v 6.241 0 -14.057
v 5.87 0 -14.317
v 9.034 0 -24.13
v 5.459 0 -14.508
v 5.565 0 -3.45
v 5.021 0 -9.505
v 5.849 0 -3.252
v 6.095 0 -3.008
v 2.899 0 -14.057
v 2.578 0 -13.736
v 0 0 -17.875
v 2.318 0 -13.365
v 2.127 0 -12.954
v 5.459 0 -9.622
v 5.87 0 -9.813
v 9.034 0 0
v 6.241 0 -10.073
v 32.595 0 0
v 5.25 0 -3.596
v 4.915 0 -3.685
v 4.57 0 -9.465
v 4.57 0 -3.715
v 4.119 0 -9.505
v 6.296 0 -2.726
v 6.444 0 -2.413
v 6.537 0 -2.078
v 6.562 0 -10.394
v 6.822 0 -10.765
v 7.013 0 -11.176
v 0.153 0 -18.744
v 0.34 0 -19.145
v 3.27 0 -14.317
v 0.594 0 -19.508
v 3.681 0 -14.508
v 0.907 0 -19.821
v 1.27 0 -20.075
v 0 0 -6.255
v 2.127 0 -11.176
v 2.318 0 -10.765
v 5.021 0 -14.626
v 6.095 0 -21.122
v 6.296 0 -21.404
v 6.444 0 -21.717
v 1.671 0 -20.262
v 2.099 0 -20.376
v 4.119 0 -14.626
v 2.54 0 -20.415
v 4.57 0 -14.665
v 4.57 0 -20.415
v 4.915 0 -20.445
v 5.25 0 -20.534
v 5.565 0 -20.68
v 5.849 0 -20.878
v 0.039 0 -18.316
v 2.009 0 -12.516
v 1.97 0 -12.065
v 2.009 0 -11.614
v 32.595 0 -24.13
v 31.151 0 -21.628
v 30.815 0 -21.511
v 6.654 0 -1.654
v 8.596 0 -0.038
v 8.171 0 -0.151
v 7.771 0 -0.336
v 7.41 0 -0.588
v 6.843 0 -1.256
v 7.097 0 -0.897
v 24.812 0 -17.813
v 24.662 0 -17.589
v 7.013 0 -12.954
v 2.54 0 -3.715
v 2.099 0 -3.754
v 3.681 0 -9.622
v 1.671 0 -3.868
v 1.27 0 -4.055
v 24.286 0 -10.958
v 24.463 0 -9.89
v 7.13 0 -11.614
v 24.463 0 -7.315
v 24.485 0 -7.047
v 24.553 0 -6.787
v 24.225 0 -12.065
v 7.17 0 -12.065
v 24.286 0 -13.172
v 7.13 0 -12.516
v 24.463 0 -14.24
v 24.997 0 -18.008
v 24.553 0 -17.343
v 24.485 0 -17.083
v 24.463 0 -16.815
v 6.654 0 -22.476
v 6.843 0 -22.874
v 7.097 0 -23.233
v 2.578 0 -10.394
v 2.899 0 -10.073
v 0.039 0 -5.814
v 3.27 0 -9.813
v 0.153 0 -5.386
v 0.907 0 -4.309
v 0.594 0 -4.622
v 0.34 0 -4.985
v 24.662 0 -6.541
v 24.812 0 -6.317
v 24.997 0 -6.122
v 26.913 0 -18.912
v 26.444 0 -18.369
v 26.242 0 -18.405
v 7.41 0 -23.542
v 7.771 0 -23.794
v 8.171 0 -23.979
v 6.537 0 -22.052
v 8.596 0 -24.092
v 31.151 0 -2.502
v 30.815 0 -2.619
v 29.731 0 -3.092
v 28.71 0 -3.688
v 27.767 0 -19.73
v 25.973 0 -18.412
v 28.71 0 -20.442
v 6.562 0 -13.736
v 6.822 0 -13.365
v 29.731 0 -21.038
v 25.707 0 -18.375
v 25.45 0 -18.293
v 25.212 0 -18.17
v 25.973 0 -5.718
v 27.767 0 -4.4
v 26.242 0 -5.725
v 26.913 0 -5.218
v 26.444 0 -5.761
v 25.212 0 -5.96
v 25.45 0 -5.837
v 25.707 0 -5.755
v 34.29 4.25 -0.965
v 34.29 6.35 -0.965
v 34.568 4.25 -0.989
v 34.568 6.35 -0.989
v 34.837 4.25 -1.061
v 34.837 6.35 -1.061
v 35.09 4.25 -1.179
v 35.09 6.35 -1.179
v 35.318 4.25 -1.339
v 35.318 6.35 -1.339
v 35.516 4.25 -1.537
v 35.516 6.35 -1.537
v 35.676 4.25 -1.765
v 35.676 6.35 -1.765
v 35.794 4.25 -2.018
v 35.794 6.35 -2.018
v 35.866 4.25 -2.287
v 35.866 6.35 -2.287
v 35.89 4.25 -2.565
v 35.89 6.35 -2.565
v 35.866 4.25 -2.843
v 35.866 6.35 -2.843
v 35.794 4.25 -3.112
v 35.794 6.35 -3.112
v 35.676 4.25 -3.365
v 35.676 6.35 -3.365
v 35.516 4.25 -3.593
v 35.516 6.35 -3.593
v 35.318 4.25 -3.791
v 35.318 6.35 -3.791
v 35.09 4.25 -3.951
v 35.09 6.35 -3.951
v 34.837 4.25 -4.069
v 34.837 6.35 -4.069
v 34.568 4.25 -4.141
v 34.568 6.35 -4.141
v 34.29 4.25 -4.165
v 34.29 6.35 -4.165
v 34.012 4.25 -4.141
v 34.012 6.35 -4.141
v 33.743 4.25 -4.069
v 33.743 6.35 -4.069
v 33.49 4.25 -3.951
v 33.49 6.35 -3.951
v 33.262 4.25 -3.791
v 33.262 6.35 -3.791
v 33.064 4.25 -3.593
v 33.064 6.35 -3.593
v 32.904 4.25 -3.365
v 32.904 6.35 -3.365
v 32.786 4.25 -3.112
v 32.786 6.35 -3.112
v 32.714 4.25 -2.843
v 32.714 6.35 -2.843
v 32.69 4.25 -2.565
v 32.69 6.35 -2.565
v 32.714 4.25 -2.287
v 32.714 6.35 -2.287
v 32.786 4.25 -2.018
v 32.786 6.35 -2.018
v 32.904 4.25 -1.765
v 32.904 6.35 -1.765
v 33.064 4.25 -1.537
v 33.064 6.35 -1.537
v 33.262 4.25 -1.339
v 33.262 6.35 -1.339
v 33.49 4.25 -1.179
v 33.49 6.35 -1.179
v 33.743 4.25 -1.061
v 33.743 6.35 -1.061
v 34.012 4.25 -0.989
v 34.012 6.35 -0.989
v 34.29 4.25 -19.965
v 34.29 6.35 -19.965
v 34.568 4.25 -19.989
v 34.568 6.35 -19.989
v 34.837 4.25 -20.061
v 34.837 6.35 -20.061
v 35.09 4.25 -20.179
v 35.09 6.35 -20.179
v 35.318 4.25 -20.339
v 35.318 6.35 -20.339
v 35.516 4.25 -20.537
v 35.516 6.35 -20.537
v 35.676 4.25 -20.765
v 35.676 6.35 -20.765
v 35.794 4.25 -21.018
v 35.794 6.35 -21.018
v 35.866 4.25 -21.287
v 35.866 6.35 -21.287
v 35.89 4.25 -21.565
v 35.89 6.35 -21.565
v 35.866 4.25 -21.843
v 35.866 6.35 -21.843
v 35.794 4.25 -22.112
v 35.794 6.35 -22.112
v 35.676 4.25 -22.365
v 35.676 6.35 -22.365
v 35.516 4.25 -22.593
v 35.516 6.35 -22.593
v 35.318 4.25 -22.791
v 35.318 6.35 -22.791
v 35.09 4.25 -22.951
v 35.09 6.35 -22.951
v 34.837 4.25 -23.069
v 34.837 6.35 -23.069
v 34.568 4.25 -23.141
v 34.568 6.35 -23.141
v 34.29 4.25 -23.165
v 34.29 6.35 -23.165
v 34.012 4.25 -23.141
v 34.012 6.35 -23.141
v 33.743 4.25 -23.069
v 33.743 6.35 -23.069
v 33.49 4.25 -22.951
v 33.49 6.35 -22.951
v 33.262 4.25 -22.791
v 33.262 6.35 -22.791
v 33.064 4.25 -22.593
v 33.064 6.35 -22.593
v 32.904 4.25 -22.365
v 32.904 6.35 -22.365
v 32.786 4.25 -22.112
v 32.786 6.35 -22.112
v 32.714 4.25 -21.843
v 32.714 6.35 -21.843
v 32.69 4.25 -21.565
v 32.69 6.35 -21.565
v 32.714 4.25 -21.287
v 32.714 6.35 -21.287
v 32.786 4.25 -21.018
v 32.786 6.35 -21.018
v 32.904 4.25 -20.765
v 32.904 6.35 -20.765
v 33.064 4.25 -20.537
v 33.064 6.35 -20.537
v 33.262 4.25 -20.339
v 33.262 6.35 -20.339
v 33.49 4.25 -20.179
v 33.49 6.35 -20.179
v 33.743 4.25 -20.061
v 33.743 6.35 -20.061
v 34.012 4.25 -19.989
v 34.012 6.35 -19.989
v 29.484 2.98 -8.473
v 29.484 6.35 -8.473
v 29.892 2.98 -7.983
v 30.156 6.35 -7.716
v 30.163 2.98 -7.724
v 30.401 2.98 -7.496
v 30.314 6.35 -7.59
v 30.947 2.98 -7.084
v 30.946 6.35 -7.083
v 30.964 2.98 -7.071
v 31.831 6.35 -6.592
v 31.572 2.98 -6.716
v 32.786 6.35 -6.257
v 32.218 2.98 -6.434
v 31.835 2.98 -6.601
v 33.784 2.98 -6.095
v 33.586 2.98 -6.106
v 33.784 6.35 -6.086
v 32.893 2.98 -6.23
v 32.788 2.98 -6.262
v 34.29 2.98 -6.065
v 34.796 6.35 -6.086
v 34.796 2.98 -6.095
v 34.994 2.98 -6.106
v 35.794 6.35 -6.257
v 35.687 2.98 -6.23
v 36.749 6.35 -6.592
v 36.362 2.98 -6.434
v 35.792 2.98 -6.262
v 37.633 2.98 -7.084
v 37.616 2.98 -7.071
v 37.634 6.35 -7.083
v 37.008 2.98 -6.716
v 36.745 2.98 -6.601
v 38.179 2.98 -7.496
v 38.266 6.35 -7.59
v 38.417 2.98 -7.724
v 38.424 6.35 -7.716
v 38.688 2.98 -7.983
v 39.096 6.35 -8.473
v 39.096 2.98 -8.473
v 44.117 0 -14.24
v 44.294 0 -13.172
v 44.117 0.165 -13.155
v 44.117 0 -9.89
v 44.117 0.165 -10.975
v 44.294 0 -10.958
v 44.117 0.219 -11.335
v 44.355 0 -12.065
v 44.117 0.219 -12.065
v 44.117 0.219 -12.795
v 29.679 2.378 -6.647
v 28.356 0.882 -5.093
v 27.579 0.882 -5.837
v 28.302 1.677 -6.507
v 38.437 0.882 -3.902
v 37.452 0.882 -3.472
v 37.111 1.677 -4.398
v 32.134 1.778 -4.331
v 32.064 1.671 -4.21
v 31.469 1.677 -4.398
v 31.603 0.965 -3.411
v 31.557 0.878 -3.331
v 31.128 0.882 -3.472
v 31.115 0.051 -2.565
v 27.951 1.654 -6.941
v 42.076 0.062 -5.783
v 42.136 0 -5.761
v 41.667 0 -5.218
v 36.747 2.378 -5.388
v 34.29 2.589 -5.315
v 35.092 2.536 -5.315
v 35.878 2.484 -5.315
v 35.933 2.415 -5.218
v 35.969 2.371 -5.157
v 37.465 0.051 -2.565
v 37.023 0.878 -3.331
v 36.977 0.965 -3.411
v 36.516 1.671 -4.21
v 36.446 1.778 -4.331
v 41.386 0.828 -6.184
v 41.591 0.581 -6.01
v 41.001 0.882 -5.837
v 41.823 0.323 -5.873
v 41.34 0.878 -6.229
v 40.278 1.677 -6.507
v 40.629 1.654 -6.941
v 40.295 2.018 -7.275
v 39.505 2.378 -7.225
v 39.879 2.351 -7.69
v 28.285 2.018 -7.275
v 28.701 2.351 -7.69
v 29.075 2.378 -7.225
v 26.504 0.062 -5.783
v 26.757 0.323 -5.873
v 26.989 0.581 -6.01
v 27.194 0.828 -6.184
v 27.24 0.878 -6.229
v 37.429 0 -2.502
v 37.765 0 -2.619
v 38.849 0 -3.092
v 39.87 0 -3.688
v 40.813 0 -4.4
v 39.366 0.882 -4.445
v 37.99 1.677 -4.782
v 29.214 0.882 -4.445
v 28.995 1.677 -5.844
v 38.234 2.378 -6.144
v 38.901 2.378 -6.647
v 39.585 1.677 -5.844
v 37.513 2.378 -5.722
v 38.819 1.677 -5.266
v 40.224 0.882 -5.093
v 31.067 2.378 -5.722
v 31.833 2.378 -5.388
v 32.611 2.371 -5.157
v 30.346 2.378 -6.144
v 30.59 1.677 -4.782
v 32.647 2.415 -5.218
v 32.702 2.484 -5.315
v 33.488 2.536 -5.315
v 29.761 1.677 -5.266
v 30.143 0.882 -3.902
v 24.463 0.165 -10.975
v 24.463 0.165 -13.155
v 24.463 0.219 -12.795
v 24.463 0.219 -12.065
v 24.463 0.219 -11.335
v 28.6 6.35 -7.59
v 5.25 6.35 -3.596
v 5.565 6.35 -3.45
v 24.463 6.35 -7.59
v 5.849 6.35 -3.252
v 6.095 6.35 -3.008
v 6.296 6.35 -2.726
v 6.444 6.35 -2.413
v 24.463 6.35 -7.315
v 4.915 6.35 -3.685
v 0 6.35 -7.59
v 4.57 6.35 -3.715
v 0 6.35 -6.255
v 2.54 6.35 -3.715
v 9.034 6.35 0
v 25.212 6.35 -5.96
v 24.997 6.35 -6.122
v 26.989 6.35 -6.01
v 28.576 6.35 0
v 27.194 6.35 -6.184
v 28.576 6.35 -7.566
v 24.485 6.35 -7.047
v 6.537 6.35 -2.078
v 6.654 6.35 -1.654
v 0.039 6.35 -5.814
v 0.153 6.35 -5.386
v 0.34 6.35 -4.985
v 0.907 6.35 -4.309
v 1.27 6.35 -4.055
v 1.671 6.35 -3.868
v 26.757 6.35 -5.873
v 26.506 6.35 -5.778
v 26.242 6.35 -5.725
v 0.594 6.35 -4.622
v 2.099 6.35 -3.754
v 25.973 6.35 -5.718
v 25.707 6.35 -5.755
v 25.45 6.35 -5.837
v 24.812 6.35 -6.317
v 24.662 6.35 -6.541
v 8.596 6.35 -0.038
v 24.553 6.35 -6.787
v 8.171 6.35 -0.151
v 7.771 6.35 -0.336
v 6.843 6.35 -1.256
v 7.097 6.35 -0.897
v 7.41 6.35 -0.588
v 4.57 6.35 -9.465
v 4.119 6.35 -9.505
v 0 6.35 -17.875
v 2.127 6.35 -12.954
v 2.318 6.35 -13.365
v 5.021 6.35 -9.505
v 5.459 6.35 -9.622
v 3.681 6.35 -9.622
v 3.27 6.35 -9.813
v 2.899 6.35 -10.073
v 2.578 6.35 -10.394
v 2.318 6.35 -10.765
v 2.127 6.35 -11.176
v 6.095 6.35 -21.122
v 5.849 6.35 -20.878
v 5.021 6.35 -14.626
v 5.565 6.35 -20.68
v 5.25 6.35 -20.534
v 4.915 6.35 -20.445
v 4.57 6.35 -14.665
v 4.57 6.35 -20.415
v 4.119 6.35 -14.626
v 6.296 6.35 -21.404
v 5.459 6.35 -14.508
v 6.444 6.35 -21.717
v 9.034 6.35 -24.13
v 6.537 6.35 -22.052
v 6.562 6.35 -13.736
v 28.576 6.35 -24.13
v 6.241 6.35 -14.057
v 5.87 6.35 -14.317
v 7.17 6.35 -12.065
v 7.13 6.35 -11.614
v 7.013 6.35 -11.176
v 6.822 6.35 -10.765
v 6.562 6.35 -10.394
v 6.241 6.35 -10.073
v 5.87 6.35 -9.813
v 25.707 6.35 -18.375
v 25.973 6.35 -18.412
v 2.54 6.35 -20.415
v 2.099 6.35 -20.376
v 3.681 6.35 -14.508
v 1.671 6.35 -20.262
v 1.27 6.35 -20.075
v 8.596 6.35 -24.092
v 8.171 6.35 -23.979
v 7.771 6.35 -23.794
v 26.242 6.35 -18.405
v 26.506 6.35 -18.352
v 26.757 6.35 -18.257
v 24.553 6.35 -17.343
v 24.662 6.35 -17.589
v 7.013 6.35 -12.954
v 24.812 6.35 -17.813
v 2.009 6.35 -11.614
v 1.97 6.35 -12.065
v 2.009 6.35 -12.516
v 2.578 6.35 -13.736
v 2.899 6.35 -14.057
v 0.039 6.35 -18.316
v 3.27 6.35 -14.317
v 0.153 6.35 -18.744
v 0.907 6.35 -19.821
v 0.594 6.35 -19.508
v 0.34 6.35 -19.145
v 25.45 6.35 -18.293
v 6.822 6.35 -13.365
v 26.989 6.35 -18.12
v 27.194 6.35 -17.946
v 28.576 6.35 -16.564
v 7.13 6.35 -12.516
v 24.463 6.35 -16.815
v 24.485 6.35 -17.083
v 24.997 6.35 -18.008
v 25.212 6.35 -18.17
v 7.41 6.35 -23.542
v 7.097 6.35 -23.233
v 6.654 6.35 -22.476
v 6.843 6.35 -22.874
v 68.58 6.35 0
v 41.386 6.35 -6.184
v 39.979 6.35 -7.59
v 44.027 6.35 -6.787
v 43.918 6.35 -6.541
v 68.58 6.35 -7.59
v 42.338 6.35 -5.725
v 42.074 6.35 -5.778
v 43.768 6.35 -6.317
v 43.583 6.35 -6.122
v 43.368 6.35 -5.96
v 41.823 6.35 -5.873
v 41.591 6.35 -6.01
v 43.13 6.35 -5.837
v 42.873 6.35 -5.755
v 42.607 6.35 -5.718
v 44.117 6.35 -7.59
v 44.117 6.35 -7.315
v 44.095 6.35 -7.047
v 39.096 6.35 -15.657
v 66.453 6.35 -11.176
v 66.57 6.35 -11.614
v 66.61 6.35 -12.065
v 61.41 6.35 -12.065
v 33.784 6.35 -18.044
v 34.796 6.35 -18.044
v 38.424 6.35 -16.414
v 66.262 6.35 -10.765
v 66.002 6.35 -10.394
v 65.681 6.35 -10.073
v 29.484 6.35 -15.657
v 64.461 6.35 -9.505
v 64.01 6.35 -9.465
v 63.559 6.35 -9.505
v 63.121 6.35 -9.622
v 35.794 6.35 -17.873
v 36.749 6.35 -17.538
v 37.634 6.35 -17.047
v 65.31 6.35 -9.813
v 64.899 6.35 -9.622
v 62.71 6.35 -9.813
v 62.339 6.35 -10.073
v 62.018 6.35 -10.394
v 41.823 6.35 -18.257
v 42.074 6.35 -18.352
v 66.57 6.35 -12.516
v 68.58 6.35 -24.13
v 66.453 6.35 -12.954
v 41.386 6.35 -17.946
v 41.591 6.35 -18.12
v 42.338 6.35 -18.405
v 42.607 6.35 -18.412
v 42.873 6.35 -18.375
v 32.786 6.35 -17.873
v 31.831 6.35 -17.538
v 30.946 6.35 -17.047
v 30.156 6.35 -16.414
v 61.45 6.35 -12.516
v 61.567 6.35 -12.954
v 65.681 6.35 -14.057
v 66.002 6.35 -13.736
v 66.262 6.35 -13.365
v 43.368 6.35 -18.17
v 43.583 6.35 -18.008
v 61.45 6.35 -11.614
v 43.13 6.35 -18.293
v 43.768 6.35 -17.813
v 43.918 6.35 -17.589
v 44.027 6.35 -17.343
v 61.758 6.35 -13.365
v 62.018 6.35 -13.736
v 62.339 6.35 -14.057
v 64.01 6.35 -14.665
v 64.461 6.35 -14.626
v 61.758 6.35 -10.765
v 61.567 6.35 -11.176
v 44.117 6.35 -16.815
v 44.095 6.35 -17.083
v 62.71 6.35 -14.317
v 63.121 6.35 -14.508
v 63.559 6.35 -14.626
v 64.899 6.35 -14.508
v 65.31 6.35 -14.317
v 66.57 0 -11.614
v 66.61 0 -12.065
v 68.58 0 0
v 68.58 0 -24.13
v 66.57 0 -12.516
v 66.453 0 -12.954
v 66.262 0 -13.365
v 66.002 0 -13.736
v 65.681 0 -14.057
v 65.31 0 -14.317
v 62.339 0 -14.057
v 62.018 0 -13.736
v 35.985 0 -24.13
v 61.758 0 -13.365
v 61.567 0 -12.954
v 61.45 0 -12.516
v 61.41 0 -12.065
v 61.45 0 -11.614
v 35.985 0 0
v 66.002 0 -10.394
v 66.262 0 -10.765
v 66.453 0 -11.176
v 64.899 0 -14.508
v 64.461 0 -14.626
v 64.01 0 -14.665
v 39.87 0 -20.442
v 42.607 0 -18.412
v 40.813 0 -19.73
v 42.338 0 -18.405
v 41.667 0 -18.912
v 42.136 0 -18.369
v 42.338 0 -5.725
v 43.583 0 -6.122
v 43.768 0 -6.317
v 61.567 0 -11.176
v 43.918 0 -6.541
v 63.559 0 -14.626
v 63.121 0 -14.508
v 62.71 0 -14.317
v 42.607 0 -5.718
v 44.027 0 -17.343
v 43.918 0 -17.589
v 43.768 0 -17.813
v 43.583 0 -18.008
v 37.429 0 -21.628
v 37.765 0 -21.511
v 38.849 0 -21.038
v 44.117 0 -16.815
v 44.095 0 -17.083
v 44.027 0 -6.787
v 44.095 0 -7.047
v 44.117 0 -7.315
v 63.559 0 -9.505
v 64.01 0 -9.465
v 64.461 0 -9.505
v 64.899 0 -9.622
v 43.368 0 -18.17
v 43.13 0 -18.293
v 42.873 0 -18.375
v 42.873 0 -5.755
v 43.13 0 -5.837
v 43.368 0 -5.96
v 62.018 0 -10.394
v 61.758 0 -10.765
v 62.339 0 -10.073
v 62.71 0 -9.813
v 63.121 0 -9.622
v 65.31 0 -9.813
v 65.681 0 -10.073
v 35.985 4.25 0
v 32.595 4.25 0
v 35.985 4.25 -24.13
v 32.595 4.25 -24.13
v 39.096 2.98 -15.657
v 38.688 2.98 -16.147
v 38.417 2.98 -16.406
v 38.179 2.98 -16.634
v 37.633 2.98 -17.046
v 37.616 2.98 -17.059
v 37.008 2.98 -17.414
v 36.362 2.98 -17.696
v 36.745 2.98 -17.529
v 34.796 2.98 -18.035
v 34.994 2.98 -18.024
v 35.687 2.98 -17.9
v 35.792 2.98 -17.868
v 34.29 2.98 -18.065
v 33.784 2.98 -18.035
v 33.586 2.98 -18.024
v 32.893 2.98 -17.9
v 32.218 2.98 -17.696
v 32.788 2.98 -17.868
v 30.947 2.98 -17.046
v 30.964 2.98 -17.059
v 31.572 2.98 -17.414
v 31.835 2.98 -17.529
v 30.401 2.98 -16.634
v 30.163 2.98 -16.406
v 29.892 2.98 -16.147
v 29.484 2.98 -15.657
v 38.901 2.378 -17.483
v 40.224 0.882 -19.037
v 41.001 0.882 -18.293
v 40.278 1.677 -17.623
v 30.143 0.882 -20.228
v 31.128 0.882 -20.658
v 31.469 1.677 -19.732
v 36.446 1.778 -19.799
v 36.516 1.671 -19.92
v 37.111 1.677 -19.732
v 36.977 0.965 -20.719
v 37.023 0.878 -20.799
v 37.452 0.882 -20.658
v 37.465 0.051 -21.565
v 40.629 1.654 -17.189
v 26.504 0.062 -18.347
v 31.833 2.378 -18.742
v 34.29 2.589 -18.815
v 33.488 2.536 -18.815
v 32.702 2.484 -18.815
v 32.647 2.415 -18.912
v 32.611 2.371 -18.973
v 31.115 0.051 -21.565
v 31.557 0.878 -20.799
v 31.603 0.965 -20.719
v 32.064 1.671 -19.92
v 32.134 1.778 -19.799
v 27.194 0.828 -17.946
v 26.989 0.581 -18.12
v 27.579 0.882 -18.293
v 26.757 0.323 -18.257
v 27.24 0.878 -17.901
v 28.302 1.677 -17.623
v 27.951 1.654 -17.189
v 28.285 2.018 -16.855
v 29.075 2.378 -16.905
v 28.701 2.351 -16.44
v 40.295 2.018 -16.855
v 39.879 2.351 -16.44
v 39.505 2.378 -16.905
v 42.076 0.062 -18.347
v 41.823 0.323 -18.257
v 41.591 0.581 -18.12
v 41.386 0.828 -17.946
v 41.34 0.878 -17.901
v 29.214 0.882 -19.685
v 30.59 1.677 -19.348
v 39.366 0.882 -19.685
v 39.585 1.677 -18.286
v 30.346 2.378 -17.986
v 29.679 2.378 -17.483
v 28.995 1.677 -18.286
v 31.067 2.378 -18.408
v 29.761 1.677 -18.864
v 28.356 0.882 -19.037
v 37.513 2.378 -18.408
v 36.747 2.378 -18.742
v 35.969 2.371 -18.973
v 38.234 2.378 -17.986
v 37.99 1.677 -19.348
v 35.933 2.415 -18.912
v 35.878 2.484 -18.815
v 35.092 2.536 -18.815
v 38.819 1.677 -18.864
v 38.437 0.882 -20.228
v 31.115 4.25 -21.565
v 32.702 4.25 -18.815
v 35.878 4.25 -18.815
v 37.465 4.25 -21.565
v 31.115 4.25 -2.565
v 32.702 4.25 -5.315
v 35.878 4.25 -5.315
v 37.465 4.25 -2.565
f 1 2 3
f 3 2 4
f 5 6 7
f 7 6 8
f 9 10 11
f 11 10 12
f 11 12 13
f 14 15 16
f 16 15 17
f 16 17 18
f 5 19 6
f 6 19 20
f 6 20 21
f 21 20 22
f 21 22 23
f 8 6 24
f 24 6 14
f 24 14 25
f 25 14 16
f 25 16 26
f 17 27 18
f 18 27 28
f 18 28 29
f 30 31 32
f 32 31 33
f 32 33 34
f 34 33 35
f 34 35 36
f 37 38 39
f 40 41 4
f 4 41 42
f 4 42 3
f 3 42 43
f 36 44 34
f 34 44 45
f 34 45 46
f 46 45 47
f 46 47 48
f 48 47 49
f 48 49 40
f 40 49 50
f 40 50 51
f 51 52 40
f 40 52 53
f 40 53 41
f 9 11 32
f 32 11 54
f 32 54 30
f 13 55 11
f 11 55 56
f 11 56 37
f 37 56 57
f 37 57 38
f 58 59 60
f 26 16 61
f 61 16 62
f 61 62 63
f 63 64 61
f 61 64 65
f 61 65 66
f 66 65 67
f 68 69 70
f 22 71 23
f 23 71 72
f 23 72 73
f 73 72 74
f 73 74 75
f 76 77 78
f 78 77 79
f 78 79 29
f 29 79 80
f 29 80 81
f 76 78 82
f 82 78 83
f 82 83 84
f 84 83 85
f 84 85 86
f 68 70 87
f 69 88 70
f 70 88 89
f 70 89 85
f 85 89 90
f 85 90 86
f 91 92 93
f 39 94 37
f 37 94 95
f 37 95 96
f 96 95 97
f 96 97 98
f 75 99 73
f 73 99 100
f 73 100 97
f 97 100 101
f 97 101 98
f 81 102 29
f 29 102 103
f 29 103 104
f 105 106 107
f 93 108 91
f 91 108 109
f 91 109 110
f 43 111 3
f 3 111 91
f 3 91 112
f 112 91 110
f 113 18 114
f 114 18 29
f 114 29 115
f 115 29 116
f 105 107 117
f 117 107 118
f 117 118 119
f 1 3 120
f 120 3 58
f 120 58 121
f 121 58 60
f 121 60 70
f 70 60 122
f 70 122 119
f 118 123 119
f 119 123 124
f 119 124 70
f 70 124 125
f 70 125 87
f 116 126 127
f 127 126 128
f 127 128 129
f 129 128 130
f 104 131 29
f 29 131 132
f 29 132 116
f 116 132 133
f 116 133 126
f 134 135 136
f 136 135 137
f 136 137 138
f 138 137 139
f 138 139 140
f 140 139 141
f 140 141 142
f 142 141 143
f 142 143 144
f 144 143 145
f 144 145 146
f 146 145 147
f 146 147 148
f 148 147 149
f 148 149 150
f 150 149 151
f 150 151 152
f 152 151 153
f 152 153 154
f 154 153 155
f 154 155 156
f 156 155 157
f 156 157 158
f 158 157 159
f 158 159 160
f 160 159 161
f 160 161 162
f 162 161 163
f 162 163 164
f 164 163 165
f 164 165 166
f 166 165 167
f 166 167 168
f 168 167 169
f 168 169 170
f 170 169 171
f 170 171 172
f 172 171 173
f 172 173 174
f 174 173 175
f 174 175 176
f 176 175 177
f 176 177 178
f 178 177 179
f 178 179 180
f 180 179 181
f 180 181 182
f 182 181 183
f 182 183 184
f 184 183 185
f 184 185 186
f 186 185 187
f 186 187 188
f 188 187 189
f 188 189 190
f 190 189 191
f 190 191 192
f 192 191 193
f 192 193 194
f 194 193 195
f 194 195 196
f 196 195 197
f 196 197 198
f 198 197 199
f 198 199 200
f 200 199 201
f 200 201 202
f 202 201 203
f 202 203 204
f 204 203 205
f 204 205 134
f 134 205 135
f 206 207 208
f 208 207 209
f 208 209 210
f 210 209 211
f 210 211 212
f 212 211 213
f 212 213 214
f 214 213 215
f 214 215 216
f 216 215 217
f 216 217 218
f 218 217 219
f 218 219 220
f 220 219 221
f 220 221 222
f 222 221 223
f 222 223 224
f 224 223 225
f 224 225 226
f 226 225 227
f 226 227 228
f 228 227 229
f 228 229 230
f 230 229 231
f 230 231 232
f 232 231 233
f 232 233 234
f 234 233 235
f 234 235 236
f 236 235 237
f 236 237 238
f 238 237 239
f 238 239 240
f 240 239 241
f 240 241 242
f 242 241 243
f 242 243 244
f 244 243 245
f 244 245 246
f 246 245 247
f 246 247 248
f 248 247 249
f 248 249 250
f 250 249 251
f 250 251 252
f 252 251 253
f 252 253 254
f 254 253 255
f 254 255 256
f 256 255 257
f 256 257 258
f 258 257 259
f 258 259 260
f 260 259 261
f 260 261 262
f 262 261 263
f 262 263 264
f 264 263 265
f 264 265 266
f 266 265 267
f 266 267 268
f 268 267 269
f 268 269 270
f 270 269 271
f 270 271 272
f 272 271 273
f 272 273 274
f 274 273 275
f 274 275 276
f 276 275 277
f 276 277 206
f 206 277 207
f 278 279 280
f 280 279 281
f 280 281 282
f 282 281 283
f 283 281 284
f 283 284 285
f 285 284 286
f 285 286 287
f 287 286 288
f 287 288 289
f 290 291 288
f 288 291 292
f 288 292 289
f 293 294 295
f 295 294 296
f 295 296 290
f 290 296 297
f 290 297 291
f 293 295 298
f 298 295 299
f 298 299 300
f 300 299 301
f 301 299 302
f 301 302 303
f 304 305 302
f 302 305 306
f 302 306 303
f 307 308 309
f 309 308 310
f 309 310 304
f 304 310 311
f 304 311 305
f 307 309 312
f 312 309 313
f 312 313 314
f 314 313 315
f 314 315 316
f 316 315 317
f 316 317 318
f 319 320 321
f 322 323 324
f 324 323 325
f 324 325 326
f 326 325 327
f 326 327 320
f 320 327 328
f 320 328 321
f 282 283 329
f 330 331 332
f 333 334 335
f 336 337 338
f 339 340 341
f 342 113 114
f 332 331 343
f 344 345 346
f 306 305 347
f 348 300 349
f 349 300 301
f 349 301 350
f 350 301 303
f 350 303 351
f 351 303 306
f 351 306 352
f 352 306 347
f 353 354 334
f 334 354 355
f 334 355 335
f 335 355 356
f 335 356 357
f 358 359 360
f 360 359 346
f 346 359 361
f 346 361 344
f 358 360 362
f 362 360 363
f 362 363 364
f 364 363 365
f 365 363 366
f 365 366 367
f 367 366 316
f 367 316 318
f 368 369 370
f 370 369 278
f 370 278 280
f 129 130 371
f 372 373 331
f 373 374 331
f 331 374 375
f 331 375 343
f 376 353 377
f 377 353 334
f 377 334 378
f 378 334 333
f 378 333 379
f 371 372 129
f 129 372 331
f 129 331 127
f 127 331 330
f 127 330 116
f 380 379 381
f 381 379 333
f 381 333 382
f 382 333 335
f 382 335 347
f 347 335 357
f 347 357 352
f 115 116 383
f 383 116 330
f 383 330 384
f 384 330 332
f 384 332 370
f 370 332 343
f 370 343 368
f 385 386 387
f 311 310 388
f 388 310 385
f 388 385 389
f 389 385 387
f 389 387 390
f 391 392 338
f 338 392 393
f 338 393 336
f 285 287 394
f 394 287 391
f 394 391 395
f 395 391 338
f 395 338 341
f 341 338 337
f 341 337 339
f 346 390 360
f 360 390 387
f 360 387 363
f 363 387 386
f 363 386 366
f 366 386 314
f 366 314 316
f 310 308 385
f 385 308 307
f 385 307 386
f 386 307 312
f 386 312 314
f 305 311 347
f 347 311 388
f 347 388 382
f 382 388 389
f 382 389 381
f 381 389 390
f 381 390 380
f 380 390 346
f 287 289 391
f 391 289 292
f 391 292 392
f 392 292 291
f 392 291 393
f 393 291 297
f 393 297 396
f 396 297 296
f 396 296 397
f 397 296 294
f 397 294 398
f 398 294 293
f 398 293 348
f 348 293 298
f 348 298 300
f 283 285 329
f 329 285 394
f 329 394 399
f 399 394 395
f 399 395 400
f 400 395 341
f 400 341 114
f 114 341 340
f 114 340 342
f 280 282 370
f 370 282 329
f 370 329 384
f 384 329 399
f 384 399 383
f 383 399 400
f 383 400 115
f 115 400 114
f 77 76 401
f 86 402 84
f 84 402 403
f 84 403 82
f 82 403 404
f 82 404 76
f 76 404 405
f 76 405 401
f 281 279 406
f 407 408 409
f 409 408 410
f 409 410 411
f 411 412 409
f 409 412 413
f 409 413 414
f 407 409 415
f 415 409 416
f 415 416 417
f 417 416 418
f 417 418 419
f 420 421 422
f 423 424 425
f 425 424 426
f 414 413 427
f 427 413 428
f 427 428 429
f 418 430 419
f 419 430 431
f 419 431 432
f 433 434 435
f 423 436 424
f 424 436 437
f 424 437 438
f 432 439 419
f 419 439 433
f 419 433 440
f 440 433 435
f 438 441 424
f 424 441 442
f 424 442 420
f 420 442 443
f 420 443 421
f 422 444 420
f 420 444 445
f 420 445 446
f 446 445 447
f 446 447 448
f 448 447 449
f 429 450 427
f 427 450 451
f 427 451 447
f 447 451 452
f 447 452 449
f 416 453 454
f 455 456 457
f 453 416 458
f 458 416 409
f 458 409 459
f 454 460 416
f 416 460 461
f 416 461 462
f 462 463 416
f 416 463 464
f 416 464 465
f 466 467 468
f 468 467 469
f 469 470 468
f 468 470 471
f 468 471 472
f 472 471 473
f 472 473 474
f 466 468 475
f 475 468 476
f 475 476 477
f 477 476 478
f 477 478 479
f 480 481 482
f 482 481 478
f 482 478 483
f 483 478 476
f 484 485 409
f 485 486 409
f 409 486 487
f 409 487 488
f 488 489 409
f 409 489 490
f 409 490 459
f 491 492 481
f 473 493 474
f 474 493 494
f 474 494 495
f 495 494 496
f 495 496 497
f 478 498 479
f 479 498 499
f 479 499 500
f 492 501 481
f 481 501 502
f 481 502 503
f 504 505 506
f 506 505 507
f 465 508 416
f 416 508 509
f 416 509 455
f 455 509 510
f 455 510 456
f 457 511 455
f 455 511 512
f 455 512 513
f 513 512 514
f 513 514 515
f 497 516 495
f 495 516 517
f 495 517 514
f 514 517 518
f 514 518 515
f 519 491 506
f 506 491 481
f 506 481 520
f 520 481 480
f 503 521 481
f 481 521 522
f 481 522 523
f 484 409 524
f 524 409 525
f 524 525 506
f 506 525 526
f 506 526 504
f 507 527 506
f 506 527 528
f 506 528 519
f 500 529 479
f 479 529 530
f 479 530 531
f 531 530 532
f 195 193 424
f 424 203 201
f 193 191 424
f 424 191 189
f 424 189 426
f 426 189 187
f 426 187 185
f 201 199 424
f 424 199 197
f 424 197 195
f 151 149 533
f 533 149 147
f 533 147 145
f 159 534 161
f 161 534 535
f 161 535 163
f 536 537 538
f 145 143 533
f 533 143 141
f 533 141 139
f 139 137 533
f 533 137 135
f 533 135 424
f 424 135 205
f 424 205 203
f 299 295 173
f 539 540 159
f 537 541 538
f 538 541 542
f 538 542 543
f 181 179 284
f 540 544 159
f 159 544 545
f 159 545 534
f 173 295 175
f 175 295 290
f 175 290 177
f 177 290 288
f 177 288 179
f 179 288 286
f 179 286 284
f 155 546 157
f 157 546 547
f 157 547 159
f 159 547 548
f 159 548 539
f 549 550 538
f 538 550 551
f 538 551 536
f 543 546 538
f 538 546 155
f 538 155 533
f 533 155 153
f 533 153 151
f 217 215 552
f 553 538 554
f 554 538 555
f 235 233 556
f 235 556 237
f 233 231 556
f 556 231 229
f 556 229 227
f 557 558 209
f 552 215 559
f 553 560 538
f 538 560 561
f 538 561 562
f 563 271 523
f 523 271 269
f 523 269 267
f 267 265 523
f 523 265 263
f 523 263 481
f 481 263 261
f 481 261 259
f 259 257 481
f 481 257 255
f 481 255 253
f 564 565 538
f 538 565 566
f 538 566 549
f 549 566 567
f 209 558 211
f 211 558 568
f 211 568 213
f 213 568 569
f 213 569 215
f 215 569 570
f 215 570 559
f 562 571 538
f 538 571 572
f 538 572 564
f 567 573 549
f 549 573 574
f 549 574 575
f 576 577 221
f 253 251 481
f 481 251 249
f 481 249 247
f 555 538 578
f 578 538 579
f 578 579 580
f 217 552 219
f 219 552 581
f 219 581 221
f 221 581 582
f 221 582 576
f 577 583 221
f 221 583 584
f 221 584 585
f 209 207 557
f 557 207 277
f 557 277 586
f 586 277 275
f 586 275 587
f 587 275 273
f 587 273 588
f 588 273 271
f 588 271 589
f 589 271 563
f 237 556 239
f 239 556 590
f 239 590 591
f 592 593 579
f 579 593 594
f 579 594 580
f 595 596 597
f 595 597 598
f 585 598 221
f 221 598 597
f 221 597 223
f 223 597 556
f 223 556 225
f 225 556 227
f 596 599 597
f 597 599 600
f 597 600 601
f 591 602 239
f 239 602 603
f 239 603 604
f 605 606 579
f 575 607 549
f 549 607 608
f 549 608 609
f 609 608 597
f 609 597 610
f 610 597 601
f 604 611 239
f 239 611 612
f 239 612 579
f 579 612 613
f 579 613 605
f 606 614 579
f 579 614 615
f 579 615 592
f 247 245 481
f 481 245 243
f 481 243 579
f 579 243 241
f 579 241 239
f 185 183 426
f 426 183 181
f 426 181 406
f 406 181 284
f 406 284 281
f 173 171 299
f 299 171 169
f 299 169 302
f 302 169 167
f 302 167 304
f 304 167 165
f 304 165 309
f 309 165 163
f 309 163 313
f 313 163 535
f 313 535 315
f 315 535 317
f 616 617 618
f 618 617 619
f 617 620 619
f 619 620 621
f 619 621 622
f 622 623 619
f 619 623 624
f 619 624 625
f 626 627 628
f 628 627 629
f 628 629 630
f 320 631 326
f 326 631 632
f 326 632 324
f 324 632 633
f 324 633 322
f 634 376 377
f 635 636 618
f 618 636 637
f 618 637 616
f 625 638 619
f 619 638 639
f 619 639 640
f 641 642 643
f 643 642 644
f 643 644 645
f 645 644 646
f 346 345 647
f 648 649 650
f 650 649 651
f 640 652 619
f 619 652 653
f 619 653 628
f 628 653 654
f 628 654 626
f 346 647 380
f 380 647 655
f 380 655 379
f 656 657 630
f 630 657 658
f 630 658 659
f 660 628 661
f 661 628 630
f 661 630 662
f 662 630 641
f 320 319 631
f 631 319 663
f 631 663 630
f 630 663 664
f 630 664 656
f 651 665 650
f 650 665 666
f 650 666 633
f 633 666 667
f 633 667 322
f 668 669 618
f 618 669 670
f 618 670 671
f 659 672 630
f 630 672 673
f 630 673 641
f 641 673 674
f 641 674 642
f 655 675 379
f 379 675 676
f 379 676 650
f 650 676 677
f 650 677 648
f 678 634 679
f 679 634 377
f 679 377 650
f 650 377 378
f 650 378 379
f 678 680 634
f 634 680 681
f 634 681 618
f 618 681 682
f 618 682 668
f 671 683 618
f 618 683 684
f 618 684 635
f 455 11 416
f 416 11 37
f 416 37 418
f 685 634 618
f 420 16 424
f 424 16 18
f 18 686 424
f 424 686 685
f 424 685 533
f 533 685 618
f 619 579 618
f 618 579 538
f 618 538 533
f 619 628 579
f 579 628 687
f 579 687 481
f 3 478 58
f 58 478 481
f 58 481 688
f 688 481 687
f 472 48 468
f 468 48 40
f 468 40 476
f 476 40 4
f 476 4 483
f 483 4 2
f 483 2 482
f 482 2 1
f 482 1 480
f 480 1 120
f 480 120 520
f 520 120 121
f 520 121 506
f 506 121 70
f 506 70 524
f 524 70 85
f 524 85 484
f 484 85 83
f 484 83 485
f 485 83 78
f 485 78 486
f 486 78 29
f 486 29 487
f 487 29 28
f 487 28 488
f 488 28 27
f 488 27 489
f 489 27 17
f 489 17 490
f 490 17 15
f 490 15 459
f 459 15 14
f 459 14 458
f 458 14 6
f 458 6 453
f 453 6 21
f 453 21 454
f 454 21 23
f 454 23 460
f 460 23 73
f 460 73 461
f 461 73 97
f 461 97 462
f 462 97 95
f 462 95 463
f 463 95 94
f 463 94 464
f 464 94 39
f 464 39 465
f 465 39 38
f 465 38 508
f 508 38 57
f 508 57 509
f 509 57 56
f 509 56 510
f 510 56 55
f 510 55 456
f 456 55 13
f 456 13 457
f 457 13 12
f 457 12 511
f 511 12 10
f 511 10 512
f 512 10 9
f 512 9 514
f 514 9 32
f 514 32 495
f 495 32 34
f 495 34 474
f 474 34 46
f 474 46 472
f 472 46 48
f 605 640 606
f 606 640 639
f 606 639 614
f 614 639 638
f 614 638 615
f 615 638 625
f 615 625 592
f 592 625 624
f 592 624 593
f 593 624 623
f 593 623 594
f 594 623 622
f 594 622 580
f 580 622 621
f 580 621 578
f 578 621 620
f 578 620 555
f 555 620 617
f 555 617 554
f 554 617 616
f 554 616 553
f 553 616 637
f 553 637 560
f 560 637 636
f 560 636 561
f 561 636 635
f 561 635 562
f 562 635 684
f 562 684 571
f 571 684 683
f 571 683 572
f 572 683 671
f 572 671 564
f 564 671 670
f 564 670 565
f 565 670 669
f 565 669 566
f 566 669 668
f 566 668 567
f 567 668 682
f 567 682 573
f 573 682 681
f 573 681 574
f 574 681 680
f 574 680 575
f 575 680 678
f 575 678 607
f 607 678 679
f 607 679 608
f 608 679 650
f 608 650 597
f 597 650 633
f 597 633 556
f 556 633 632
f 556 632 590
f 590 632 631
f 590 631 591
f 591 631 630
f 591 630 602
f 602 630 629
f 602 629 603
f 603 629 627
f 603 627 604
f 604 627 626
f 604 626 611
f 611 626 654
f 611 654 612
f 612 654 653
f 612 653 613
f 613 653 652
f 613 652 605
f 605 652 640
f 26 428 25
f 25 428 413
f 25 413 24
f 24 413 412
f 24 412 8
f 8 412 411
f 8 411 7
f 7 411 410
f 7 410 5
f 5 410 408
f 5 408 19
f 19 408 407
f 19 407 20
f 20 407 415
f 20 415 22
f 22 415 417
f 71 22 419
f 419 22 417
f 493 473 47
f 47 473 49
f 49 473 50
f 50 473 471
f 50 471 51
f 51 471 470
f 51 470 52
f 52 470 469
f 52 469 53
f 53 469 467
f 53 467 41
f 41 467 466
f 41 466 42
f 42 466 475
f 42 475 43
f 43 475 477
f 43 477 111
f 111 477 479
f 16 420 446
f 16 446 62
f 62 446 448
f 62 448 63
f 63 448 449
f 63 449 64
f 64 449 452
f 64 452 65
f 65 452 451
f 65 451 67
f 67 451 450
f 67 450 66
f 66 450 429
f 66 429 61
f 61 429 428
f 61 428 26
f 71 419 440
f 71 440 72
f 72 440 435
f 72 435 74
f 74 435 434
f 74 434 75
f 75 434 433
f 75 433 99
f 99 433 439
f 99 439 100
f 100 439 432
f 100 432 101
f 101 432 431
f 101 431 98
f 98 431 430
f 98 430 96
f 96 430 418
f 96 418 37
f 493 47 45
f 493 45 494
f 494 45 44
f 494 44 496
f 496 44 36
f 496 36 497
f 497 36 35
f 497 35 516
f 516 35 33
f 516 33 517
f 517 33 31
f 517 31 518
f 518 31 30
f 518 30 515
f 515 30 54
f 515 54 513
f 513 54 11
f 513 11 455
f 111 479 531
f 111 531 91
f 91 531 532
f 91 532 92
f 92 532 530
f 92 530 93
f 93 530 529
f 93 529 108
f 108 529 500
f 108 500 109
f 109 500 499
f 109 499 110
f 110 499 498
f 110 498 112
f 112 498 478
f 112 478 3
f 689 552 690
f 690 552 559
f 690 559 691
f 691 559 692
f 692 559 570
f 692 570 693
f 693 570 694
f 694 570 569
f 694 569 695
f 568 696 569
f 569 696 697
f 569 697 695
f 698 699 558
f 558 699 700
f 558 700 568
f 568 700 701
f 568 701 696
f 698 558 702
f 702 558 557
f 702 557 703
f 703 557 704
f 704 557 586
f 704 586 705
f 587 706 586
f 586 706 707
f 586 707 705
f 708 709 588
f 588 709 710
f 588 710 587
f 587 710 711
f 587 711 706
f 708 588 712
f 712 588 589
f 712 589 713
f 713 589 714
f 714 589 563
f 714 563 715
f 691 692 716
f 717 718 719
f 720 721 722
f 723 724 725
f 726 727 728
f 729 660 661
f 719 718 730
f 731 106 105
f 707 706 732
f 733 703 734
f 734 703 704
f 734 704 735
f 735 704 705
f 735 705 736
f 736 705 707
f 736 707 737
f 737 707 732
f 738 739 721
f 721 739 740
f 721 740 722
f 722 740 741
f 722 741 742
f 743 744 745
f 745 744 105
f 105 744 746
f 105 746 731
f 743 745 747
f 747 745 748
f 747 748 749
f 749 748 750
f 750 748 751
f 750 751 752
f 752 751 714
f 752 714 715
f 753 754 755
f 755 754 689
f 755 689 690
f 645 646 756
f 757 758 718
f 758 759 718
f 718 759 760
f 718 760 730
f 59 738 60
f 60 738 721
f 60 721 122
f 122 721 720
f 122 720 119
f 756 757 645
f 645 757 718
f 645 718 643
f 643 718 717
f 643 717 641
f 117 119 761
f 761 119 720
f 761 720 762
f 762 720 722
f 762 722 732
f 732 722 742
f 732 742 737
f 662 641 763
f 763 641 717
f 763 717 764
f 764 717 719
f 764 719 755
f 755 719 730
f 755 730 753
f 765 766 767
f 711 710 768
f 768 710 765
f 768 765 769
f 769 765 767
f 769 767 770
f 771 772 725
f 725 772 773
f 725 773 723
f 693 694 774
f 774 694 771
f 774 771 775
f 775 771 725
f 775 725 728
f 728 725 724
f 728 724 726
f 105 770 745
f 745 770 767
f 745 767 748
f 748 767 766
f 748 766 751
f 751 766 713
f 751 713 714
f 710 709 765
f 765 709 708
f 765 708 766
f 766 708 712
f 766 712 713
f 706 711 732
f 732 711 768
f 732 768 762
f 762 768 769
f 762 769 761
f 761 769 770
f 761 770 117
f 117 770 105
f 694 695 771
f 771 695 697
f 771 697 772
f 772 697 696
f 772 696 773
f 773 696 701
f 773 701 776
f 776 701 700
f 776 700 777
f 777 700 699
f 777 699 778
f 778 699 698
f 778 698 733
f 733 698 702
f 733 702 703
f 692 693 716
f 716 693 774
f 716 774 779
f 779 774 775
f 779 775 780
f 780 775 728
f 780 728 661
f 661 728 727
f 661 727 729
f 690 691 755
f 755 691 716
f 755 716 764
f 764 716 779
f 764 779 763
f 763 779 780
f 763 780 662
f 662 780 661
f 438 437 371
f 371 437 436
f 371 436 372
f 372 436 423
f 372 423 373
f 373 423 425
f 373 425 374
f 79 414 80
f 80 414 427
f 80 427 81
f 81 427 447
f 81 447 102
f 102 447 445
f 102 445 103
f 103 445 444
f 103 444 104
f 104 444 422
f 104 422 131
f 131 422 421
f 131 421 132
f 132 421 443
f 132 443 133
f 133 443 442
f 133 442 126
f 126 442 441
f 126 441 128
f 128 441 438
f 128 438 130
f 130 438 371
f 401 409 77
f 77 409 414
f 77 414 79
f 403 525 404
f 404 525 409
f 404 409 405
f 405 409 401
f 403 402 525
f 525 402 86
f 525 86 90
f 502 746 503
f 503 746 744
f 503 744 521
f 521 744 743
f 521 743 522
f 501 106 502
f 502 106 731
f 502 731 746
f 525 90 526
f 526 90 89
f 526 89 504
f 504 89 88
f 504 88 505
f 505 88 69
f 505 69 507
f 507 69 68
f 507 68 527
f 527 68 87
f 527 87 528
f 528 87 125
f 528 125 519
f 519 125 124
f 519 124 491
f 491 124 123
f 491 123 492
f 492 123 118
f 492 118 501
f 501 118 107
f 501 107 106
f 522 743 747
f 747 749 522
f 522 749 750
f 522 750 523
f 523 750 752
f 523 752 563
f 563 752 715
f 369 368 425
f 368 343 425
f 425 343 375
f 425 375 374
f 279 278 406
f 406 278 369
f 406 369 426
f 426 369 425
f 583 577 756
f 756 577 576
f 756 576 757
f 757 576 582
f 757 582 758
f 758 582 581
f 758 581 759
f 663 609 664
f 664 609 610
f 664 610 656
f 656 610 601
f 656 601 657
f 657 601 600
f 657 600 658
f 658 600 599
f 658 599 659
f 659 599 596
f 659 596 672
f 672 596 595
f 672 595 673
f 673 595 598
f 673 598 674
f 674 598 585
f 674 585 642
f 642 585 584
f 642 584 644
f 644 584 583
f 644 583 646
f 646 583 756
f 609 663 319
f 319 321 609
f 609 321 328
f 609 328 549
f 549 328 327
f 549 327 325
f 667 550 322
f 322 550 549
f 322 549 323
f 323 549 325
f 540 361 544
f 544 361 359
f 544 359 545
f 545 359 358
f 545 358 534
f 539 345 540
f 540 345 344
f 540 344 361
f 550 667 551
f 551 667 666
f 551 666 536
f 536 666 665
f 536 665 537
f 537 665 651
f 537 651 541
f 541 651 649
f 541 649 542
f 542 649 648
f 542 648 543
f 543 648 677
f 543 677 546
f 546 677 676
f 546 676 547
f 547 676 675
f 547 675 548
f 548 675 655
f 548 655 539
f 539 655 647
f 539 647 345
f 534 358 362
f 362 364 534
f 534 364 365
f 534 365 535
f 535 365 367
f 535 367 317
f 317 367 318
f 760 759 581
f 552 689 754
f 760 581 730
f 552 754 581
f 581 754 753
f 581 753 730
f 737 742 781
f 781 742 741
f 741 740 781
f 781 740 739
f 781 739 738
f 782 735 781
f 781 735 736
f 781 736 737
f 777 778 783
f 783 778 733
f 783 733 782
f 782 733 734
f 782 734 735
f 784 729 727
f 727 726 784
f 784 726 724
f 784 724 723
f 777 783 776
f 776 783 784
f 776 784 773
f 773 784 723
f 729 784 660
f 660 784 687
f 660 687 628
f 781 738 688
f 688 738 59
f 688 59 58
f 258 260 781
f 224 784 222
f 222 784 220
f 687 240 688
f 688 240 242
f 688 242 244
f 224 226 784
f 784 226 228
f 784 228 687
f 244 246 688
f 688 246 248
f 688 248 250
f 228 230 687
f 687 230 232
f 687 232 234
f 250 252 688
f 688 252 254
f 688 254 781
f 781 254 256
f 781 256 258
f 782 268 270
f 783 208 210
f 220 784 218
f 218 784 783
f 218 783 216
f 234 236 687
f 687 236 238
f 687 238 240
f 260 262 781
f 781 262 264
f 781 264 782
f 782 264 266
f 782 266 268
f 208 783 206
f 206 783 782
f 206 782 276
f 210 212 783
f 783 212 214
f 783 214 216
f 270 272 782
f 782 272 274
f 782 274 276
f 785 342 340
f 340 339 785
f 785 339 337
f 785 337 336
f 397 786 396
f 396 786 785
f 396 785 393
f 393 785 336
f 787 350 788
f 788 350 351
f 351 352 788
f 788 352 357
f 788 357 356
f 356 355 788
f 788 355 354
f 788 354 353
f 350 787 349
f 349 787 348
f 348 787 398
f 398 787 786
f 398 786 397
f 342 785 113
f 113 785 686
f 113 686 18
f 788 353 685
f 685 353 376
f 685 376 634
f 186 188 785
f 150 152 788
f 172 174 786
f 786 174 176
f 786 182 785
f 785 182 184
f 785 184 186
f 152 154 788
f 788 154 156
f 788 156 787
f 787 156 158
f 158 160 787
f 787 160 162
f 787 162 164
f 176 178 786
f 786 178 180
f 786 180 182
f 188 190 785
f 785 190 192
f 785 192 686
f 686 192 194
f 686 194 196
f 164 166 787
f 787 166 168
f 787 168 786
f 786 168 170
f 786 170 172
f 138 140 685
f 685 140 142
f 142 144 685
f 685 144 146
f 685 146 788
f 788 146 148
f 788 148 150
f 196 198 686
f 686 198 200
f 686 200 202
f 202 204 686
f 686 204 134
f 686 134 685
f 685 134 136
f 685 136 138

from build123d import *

# Parameters (mm, degrees)
SKETCH2_W           = 68.58
SKETCH2_H           = 24.13
SKETCH2_R           = 2.6
BOSS_EXTRUDE1_DEPTH = 6.35
CUT_EXTRUDE1_DEPTH  = 7.35
FILLET3_R           = 2.54
SKETCH4_R           = 6
CUT_EXTRUDE2_DEPTH  = 7.3500001
SKETCH9_R           = 1.6
CUT_EXTRUDE3_DEPTH  = 7.3500001
CUT_EXTRUDE4_DEPTH  = 4.25


with BuildPart() as part:
    # Sketch2 → Boss-Extrude1 (new body)
    with BuildSketch(Plane(origin=(0, 0, 0), x_dir=(1, 0, 0), z_dir=(0, 1, 0))):
        with Locations((34.29, 12.065)):
            Rectangle(SKETCH2_W, SKETCH2_H)
        with Locations((4.57, 12.065)):
            Circle(SKETCH2_R, mode=Mode.SUBTRACT)
        with Locations((64.01, 12.065)):
            Circle(SKETCH2_R, mode=Mode.SUBTRACT)
    extrude(amount=BOSS_EXTRUDE1_DEPTH)

    # Sketch3 → Cut-Extrude1 (cut, through all)
    with BuildSketch(Plane(origin=(0, 6.35, 0), x_dir=(1, 0, 0), z_dir=(0, 1, 0))):
        with BuildLine():
            Line((4.57, 3.715), (0, 3.715))
            Line((0, 3.715), (0, 0))
            Line((0, 0), (6.57, 0))
            Line((6.57, 0), (6.57, 1.715))
            ThreePointArc((6.57, 1.715), (5.984213562, 3.129213562), (4.57, 3.715))
        make_face()
        with BuildLine():
            ThreePointArc((4.57, 20.415), (5.984213562, 21.000786438), (6.57, 22.415))
            Line((6.57, 22.415), (6.57, 24.13))
            Line((6.57, 24.13), (0, 24.13))
            Line((0, 24.13), (0, 20.415))
            Line((0, 20.415), (4.57, 20.415))
        make_face()
    extrude(amount=-CUT_EXTRUDE1_DEPTH, mode=Mode.SUBTRACT)

    # Fillet3
    fillet3_edges = [part.edges().sort_by_distance(p)[0] for p in [
        (6.57, 3.175, 0),
        (0, 3.175, -3.715),
        (0, 3.175, -20.415),
        (6.57, 3.175, -24.13),
    ]]
    fillet(fillet3_edges, radius=FILLET3_R)

    # Sketch4 → Cut-Extrude2 (cut, through all)
    with BuildSketch(Plane(origin=(0, 6.35, 0), x_dir=(1, 0, 0), z_dir=(0, 1, 0))):
        with Locations((34.29, 12.065)):
            Circle(SKETCH4_R)
    extrude(amount=-CUT_EXTRUDE2_DEPTH, mode=Mode.SUBTRACT)

    # Sketch8 one side → Cut-Revolve6 (revolve, cut)
    with BuildSketch(Plane(origin=(34.29, 0, 0), x_dir=(0, 0, -1), z_dir=(1, 0, 0))):
        with BuildLine():
            Line((12.065, 0), (22.13, 0))
            ThreePointArc((22.13, 0), (17.5473974, 3.215969501), (12.065, 4.35))
            Line((12.065, 4.35), (12.065, 0))
        make_face()
    revolve(axis=Axis((34.29, 6.35, -12.065), (0, -1, 0)), mode=Mode.SUBTRACT)

    # Sketch9 → Cut-Extrude3 (cut, through all)
    with BuildSketch(Plane(origin=(0, 6.35, 0), x_dir=(1, 0, 0), z_dir=(0, 1, 0))):
        with Locations((34.29, 2.565)):
            Circle(SKETCH9_R)
        with Locations((34.29, 21.565)):
            Circle(SKETCH9_R)
        with BuildLine():
            Line((24.462758664, 7.315), (24.462758664, 16.815))
            ThreePointArc((24.462758664, 16.815), (25.450465172, 18.293207252), (27.194129514, 17.94637085))
            Line((27.194129514, 17.94637085), (29.483792257, 15.656708107))
            Line((29.483792257, 15.656708107), (29.483792257, 8.473291893))
            Line((29.483792257, 8.473291893), (27.194129514, 6.18362915))
            ThreePointArc((27.194129514, 6.18362915), (25.450465172, 5.836792748), (24.462758664, 7.315))
        make_face()
        with BuildLine():
            Line((44.117241336, 16.815), (44.117241336, 7.315))
            ThreePointArc((44.117241336, 7.315), (43.129534828, 5.836792748), (41.385870486, 6.18362915))
            Line((41.385870486, 6.18362915), (39.096207743, 8.473291893))
            Line((39.096207743, 8.473291893), (39.096207743, 15.656708107))
            Line((39.096207743, 15.656708107), (41.385870486, 17.94637085))
            ThreePointArc((41.385870486, 17.94637085), (43.129534828, 18.293207252), (44.117241336, 16.815))
        make_face()
    extrude(amount=-CUT_EXTRUDE3_DEPTH, mode=Mode.SUBTRACT)

    # Sketch10 → Cut-Extrude4 (cut)
    with BuildSketch(Plane.XZ):
        Polygon((31.114573519, -21.565), (32.70228676, -24.315), (35.87771324, -24.315), (37.465426481, -21.565), (35.87771324, -18.815), (32.70228676, -18.815), align=None)
        Polygon((32.70228676, -5.315), (35.87771324, -5.315), (37.465426481, -2.565), (35.87771324, 0.185), (32.70228676, 0.185), (31.114573519, -2.565), align=None)
    extrude(amount=-CUT_EXTRUDE4_DEPTH, mode=Mode.SUBTRACT)


solid = part.part
